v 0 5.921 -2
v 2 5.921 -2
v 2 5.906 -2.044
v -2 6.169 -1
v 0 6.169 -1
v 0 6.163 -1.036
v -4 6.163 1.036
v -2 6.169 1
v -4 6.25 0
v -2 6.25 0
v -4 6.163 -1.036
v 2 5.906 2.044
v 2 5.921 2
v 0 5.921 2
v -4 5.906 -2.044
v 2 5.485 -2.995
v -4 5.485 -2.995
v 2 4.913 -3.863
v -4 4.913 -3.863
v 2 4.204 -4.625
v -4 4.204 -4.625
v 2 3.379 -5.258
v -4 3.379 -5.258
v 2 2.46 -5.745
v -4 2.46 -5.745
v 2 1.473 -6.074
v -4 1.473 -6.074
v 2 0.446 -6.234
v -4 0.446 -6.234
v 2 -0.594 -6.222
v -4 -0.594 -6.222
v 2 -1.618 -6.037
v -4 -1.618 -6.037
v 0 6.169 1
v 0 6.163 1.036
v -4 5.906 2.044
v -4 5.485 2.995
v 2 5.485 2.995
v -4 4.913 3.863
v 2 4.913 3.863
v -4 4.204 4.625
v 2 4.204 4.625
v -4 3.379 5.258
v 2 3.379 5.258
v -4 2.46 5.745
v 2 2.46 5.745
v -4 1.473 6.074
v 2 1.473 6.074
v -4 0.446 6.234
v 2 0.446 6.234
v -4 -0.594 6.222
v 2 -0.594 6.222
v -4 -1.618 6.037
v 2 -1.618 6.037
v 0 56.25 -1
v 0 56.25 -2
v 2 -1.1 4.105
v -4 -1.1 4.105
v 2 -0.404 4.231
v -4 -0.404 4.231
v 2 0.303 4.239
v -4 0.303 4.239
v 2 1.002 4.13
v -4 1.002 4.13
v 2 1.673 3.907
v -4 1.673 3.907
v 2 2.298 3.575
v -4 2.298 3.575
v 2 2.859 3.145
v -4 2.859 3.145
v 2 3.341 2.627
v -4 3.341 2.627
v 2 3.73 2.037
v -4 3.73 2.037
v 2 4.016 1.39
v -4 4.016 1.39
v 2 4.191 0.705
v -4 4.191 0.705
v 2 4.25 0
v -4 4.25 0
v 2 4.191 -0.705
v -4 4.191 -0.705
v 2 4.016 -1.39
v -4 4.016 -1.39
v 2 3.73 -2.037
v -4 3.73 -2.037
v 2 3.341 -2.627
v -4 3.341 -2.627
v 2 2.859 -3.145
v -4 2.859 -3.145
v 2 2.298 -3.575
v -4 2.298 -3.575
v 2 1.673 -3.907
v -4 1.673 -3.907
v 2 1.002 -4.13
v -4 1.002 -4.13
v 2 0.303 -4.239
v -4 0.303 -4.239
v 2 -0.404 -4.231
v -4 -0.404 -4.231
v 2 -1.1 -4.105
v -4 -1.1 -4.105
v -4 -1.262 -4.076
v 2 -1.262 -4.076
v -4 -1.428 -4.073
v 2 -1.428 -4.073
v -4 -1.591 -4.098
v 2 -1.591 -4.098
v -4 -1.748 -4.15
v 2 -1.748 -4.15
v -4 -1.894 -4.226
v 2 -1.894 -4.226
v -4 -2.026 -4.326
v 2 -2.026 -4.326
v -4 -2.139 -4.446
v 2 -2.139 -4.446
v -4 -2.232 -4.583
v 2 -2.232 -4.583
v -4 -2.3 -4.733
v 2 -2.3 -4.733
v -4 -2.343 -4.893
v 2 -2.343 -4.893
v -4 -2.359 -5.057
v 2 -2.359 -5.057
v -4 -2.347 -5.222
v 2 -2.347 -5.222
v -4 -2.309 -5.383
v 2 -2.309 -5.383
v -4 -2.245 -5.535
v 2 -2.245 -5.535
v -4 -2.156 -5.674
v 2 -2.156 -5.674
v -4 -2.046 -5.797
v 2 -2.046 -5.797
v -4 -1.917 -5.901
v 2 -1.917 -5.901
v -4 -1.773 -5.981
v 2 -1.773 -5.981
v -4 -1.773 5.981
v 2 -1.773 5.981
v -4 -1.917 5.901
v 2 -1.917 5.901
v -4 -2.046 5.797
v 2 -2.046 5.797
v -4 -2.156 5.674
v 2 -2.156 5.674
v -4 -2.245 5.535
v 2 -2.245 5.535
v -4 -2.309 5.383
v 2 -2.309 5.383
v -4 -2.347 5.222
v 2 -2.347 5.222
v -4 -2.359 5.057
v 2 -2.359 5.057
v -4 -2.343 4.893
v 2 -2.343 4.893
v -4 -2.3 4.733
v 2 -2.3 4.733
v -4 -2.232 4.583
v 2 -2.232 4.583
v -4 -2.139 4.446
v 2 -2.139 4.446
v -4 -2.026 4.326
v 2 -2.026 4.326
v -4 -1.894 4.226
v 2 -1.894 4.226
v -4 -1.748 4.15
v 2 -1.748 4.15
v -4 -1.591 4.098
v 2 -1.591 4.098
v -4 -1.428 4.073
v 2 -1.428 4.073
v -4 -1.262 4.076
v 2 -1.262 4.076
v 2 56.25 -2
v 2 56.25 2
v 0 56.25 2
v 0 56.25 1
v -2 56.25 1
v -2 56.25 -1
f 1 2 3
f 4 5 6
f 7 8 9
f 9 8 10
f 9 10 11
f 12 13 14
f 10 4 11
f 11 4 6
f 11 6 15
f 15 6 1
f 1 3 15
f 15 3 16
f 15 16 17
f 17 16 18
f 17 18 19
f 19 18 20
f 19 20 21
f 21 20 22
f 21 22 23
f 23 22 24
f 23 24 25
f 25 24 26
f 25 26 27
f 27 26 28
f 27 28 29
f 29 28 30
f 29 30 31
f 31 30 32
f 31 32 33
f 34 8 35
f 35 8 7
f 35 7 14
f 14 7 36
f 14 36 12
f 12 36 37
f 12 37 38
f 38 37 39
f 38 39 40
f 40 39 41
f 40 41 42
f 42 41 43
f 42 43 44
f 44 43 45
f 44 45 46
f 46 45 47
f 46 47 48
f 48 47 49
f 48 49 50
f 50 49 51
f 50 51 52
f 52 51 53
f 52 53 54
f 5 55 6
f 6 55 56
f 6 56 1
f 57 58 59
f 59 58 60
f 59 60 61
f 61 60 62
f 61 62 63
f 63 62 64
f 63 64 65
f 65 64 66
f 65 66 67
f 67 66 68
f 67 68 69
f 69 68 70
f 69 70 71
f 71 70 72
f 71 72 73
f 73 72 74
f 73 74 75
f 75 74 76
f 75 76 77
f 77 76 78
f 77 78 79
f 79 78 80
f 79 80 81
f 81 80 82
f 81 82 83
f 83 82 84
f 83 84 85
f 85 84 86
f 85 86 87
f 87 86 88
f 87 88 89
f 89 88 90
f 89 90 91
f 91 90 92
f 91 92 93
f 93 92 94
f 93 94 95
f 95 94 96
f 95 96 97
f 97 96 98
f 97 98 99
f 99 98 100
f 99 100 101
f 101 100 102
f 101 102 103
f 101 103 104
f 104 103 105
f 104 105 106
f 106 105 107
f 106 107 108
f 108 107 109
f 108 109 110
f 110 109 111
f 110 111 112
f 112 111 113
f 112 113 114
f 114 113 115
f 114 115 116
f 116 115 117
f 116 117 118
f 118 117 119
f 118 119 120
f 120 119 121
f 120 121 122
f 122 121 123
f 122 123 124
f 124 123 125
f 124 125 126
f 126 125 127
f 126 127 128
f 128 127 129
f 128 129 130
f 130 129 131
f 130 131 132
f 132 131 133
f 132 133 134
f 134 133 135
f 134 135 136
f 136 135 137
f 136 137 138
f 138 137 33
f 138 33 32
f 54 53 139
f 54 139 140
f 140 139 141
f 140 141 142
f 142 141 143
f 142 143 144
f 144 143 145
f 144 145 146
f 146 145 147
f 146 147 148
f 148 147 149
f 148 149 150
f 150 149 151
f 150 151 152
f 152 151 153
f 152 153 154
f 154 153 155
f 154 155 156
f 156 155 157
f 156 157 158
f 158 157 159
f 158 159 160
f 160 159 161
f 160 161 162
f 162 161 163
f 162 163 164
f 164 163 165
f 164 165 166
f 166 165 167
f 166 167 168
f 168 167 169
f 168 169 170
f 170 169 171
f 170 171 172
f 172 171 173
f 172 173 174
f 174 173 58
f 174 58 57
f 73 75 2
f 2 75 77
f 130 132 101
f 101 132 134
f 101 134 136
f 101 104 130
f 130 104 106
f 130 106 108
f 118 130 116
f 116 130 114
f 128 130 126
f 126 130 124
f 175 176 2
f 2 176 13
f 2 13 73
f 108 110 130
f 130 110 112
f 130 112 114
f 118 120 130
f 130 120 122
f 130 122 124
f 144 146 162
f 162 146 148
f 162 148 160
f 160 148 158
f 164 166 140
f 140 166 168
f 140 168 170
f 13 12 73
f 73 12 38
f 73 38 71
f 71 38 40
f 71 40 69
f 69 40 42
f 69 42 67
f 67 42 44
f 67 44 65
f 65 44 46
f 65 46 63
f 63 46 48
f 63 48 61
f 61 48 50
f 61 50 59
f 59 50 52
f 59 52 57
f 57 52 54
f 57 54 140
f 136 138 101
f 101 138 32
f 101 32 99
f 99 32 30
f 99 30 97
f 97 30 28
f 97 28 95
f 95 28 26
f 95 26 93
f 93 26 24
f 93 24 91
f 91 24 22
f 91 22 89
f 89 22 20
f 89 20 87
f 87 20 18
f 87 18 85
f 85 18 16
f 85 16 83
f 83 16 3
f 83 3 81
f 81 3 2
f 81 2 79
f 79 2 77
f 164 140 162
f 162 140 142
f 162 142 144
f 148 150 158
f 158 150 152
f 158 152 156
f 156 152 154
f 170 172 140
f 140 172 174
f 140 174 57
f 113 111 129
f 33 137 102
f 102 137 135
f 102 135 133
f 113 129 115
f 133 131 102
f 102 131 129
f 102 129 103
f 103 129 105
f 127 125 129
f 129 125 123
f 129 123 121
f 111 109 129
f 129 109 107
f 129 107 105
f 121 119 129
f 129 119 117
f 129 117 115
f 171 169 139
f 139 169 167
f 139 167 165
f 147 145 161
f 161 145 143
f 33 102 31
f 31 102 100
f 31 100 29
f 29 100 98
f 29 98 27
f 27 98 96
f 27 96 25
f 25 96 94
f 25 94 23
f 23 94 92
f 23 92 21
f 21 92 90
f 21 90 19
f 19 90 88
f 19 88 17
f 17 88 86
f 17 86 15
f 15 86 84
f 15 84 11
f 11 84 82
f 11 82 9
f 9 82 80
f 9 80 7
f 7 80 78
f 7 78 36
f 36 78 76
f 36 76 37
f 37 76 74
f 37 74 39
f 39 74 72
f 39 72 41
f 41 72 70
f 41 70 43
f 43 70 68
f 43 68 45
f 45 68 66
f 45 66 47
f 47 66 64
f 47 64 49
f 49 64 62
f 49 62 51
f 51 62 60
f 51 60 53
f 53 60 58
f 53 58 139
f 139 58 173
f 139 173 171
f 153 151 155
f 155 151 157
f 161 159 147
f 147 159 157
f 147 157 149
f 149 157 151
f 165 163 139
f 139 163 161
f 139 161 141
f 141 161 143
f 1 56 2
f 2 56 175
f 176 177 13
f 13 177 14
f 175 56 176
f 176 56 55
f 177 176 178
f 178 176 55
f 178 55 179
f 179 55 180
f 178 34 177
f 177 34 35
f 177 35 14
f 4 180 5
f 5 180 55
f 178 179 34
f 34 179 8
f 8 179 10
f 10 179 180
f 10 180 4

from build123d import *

# Parameters (mm, degrees)
BOSS_EXTRUDE1_DEPTH      = 2
BOSS_EXTRUDE1_DEPTH_BACK = 4
BOSS_EXTRUDE2_DEPTH      = 2
BOSS_EXTRUDE3_DEPTH      = 2


with BuildPart() as part:
    # Sketch1 → Boss-Extrude1 (new body, two sides)
    with BuildSketch(Plane(origin=(0, 0, 0), x_dir=(0, 0, -1), z_dir=(1, 0, 0))) as boss_extrude1_sk:
        with BuildLine():
            Line((-6.25, 0), (-4.25, 0))
            ThreePointArc((-4.25, 0), (0, 4.25), (4.25, 0))
            ThreePointArc((4.25, 0), (4.213640661, -0.554736317), (4.105184762, -1.099980942))
            Line((4.105184762, -1.099980942), (6.037036414, -1.617619032))
            ThreePointArc((6.037036414, -1.617619032), (6.196530384, -0.815788701), (6.25, 0))
            ThreePointArc((6.25, 0), (0, 6.25), (-6.25, 0))
        make_face()
        with BuildLine():
            Line((6.037036414, -1.617619032), (4.105184762, -1.099980942))
            ThreePointArc((4.105184762, -1.099980942), (4.812291543, -2.324725813), (6.037036414, -1.617619032))
        make_face()
        with BuildLine():
            ThreePointArc((-4.105184762, -1.099980942), (-4.213640661, -0.554736317), (-4.25, 0))
            Line((-4.25, 0), (-6.25, 0))
            ThreePointArc((-6.25, 0), (-6.196530384, -0.815788701), (-6.037036414, -1.617619032))
            Line((-6.037036414, -1.617619032), (-5.071110588, -1.358799987))
            Line((-5.071110588, -1.358799987), (-4.105184762, -1.099980942))
        make_face()
        with BuildLine():
            ThreePointArc((-6.037036414, -1.617619032), (-4.812291543, -2.324725813), (-4.105184762, -1.099980942))
            Line((-4.105184762, -1.099980942), (-5.071110588, -1.358799987))
            Line((-5.071110588, -1.358799987), (-6.037036414, -1.617619032))
        make_face()
    extrude(amount=BOSS_EXTRUDE1_DEPTH)
    extrude(boss_extrude1_sk.sketch, amount=-BOSS_EXTRUDE1_DEPTH_BACK)

    # Sketch2 → Boss-Extrude2 (add)
    with BuildSketch(Plane(origin=(0, 0, 0), x_dir=(0, 0, -1), z_dir=(1, 0, 0))):
        Polygon((-2, 4.25), (0, 4.25), (2, 4.25), (2, 56.25), (-2, 56.25), align=None)
    extrude(amount=BOSS_EXTRUDE2_DEPTH)

    # Sketch3 → Boss-Extrude3 (add)
    with BuildSketch(Plane(origin=(0, 0, 0), x_dir=(0, 0, -1), z_dir=(1, 0, 0))):
        Polygon((1, 56.25), (0, 56.25), (-1, 56.25), (-1, 4.25), (1, 4.25), align=None)
    extrude(amount=-BOSS_EXTRUDE3_DEPTH)


solid = part.part
